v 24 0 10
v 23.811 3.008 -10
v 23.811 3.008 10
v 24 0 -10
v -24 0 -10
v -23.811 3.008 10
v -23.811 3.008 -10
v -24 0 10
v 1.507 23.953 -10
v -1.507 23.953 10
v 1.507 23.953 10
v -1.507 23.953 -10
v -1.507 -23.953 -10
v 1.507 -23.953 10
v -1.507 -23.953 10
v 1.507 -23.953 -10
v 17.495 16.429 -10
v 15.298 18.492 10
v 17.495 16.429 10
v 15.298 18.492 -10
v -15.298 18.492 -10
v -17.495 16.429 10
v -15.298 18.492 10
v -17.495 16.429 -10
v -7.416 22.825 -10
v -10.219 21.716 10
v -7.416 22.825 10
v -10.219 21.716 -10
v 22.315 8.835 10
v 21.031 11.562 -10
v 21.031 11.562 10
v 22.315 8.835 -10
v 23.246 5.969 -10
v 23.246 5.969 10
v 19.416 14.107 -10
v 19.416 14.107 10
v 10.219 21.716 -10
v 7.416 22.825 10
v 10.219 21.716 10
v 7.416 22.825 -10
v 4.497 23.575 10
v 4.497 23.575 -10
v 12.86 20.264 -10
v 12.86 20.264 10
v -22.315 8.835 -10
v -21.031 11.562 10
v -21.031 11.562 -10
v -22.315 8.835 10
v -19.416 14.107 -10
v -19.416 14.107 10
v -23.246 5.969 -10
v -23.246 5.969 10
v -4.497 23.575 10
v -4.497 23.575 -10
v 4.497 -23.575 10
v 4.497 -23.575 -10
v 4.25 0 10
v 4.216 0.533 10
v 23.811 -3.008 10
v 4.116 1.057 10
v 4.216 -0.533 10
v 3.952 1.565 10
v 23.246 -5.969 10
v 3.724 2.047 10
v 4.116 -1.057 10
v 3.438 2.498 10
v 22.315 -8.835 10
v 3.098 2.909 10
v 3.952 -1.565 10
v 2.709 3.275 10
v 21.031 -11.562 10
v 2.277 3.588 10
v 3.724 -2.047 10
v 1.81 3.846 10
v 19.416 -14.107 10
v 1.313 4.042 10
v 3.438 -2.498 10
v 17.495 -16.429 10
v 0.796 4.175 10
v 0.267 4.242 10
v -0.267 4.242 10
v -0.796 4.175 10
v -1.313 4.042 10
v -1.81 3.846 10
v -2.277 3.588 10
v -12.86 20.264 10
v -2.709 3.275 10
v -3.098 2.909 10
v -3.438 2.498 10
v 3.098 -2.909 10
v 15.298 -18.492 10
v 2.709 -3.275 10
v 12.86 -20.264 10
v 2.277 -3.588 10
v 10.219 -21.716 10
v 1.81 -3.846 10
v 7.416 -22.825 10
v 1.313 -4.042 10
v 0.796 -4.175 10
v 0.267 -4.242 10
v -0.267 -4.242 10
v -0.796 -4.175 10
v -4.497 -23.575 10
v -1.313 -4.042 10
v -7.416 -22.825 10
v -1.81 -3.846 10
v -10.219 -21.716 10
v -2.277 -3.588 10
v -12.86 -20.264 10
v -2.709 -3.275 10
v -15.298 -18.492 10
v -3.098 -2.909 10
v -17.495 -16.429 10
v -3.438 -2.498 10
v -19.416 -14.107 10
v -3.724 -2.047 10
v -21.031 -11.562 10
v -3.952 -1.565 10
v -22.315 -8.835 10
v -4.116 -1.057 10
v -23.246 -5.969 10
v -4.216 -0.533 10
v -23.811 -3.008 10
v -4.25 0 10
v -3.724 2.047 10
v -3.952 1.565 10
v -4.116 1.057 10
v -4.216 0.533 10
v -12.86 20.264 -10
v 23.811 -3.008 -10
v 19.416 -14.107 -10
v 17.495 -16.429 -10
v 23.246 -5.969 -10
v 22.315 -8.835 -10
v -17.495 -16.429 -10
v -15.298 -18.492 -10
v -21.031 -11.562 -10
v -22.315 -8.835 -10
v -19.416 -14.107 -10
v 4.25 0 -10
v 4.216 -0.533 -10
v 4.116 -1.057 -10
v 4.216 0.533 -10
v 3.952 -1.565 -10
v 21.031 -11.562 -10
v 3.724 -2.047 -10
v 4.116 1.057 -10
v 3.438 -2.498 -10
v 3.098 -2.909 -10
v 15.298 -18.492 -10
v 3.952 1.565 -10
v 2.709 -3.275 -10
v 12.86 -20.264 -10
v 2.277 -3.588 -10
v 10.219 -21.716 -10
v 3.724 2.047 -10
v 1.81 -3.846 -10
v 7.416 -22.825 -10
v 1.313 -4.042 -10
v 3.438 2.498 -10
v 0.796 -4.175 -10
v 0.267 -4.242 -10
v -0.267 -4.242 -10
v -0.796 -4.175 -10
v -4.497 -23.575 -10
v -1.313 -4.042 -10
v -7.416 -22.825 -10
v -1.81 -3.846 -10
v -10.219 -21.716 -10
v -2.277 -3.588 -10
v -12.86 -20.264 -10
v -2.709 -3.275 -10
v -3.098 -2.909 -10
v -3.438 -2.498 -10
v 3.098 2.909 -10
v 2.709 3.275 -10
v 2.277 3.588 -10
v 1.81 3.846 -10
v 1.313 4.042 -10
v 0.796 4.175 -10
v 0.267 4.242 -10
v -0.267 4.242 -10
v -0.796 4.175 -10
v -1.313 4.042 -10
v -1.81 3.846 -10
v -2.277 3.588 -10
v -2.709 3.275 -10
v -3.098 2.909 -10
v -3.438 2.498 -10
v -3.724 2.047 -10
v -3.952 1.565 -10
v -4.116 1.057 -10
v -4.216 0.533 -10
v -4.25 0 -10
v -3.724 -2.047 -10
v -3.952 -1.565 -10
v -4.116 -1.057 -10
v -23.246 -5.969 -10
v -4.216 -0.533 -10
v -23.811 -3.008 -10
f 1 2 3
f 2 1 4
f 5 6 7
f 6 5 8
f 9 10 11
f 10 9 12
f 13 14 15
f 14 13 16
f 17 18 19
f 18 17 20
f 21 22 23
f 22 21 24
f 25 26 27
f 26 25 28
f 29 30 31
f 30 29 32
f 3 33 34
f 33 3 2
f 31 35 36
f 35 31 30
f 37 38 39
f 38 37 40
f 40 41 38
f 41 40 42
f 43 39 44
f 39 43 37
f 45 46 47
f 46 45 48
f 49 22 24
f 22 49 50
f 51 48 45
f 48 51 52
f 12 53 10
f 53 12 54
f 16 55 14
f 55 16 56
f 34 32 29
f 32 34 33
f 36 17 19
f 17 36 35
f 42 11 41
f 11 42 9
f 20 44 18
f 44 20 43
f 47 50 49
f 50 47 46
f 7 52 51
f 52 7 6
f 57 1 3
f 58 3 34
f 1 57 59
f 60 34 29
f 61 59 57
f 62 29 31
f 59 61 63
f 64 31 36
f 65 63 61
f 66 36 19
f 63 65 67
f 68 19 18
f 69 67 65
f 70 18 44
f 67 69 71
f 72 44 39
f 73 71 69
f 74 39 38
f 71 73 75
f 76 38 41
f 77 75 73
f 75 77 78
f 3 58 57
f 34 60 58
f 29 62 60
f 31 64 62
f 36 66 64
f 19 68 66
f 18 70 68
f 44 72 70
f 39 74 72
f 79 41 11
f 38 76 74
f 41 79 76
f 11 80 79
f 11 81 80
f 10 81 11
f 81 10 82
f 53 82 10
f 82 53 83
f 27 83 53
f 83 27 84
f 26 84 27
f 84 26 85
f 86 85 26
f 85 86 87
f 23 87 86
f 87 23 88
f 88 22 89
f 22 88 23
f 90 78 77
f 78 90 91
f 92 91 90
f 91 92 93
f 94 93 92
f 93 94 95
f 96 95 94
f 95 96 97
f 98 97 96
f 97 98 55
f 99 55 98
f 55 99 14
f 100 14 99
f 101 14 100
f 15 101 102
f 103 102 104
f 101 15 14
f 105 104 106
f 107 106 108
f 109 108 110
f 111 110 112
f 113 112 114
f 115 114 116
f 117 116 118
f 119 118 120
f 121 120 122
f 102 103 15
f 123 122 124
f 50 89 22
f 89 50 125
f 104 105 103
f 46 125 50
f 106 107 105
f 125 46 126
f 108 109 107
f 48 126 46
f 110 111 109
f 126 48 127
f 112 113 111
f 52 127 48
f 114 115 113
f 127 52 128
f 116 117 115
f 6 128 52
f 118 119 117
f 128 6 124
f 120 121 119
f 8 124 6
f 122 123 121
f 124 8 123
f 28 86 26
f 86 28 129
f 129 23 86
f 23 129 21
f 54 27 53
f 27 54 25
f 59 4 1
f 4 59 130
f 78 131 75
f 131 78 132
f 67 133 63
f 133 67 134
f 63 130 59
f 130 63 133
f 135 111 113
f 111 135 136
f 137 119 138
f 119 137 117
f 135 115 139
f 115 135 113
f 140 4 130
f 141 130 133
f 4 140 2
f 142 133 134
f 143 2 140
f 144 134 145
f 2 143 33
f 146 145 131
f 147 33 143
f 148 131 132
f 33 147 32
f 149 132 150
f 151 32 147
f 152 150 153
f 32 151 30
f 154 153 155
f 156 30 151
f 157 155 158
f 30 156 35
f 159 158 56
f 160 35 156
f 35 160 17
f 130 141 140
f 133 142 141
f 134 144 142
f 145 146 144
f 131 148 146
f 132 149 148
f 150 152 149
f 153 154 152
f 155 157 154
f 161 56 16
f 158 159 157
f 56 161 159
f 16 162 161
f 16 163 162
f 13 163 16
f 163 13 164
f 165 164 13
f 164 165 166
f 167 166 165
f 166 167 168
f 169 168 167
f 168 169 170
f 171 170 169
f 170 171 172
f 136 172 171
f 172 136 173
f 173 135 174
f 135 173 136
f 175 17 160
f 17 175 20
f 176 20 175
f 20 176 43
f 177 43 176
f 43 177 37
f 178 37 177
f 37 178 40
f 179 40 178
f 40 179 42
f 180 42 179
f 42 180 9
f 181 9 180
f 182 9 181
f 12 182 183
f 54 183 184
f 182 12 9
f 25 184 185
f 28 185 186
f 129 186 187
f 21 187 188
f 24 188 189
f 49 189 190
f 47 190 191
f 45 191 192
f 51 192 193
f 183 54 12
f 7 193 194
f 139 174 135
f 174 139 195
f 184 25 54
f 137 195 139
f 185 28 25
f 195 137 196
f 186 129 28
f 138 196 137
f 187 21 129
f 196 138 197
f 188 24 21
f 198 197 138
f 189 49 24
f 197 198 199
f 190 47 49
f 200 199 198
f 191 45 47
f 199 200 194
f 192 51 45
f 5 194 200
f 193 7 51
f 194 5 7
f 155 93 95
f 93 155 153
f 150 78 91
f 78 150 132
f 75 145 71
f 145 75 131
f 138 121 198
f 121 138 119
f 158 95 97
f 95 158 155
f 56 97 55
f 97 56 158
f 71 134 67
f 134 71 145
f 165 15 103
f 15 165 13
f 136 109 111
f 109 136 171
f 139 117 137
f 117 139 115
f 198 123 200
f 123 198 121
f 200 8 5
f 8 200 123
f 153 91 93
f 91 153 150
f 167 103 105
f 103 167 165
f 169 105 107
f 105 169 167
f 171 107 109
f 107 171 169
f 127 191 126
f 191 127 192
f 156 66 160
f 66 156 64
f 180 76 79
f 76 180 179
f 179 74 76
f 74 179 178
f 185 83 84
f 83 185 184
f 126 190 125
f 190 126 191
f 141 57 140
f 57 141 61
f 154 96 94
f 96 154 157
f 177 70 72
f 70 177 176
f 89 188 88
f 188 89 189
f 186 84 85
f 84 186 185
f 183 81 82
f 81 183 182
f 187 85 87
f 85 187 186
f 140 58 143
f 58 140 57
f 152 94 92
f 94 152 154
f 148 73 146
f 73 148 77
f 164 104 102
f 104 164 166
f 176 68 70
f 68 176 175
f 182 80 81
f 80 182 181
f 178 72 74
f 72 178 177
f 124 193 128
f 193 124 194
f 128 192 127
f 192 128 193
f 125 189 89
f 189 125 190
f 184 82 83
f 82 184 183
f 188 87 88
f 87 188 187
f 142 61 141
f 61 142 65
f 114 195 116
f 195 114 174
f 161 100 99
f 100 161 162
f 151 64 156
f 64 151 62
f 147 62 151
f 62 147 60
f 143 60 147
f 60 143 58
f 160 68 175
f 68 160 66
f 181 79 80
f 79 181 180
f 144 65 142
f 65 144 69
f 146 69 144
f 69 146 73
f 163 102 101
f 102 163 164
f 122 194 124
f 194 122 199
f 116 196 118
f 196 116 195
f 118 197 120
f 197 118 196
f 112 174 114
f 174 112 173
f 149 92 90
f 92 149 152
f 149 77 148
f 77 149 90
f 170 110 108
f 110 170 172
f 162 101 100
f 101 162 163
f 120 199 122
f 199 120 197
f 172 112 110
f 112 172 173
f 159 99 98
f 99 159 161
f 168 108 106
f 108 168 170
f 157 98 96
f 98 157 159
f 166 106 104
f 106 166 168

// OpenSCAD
$fn = 50;


difference() {
	union() {
		translate(v = [0, 0, -10.0000000000]) {
			cylinder(h = 20, r = 24.0000000000);
		}
	}
	union() {
		translate(v = [0, 0, -100.0000000000]) {
			cylinder(h = 200, r = 4.2500000000);
		}
	}
}
